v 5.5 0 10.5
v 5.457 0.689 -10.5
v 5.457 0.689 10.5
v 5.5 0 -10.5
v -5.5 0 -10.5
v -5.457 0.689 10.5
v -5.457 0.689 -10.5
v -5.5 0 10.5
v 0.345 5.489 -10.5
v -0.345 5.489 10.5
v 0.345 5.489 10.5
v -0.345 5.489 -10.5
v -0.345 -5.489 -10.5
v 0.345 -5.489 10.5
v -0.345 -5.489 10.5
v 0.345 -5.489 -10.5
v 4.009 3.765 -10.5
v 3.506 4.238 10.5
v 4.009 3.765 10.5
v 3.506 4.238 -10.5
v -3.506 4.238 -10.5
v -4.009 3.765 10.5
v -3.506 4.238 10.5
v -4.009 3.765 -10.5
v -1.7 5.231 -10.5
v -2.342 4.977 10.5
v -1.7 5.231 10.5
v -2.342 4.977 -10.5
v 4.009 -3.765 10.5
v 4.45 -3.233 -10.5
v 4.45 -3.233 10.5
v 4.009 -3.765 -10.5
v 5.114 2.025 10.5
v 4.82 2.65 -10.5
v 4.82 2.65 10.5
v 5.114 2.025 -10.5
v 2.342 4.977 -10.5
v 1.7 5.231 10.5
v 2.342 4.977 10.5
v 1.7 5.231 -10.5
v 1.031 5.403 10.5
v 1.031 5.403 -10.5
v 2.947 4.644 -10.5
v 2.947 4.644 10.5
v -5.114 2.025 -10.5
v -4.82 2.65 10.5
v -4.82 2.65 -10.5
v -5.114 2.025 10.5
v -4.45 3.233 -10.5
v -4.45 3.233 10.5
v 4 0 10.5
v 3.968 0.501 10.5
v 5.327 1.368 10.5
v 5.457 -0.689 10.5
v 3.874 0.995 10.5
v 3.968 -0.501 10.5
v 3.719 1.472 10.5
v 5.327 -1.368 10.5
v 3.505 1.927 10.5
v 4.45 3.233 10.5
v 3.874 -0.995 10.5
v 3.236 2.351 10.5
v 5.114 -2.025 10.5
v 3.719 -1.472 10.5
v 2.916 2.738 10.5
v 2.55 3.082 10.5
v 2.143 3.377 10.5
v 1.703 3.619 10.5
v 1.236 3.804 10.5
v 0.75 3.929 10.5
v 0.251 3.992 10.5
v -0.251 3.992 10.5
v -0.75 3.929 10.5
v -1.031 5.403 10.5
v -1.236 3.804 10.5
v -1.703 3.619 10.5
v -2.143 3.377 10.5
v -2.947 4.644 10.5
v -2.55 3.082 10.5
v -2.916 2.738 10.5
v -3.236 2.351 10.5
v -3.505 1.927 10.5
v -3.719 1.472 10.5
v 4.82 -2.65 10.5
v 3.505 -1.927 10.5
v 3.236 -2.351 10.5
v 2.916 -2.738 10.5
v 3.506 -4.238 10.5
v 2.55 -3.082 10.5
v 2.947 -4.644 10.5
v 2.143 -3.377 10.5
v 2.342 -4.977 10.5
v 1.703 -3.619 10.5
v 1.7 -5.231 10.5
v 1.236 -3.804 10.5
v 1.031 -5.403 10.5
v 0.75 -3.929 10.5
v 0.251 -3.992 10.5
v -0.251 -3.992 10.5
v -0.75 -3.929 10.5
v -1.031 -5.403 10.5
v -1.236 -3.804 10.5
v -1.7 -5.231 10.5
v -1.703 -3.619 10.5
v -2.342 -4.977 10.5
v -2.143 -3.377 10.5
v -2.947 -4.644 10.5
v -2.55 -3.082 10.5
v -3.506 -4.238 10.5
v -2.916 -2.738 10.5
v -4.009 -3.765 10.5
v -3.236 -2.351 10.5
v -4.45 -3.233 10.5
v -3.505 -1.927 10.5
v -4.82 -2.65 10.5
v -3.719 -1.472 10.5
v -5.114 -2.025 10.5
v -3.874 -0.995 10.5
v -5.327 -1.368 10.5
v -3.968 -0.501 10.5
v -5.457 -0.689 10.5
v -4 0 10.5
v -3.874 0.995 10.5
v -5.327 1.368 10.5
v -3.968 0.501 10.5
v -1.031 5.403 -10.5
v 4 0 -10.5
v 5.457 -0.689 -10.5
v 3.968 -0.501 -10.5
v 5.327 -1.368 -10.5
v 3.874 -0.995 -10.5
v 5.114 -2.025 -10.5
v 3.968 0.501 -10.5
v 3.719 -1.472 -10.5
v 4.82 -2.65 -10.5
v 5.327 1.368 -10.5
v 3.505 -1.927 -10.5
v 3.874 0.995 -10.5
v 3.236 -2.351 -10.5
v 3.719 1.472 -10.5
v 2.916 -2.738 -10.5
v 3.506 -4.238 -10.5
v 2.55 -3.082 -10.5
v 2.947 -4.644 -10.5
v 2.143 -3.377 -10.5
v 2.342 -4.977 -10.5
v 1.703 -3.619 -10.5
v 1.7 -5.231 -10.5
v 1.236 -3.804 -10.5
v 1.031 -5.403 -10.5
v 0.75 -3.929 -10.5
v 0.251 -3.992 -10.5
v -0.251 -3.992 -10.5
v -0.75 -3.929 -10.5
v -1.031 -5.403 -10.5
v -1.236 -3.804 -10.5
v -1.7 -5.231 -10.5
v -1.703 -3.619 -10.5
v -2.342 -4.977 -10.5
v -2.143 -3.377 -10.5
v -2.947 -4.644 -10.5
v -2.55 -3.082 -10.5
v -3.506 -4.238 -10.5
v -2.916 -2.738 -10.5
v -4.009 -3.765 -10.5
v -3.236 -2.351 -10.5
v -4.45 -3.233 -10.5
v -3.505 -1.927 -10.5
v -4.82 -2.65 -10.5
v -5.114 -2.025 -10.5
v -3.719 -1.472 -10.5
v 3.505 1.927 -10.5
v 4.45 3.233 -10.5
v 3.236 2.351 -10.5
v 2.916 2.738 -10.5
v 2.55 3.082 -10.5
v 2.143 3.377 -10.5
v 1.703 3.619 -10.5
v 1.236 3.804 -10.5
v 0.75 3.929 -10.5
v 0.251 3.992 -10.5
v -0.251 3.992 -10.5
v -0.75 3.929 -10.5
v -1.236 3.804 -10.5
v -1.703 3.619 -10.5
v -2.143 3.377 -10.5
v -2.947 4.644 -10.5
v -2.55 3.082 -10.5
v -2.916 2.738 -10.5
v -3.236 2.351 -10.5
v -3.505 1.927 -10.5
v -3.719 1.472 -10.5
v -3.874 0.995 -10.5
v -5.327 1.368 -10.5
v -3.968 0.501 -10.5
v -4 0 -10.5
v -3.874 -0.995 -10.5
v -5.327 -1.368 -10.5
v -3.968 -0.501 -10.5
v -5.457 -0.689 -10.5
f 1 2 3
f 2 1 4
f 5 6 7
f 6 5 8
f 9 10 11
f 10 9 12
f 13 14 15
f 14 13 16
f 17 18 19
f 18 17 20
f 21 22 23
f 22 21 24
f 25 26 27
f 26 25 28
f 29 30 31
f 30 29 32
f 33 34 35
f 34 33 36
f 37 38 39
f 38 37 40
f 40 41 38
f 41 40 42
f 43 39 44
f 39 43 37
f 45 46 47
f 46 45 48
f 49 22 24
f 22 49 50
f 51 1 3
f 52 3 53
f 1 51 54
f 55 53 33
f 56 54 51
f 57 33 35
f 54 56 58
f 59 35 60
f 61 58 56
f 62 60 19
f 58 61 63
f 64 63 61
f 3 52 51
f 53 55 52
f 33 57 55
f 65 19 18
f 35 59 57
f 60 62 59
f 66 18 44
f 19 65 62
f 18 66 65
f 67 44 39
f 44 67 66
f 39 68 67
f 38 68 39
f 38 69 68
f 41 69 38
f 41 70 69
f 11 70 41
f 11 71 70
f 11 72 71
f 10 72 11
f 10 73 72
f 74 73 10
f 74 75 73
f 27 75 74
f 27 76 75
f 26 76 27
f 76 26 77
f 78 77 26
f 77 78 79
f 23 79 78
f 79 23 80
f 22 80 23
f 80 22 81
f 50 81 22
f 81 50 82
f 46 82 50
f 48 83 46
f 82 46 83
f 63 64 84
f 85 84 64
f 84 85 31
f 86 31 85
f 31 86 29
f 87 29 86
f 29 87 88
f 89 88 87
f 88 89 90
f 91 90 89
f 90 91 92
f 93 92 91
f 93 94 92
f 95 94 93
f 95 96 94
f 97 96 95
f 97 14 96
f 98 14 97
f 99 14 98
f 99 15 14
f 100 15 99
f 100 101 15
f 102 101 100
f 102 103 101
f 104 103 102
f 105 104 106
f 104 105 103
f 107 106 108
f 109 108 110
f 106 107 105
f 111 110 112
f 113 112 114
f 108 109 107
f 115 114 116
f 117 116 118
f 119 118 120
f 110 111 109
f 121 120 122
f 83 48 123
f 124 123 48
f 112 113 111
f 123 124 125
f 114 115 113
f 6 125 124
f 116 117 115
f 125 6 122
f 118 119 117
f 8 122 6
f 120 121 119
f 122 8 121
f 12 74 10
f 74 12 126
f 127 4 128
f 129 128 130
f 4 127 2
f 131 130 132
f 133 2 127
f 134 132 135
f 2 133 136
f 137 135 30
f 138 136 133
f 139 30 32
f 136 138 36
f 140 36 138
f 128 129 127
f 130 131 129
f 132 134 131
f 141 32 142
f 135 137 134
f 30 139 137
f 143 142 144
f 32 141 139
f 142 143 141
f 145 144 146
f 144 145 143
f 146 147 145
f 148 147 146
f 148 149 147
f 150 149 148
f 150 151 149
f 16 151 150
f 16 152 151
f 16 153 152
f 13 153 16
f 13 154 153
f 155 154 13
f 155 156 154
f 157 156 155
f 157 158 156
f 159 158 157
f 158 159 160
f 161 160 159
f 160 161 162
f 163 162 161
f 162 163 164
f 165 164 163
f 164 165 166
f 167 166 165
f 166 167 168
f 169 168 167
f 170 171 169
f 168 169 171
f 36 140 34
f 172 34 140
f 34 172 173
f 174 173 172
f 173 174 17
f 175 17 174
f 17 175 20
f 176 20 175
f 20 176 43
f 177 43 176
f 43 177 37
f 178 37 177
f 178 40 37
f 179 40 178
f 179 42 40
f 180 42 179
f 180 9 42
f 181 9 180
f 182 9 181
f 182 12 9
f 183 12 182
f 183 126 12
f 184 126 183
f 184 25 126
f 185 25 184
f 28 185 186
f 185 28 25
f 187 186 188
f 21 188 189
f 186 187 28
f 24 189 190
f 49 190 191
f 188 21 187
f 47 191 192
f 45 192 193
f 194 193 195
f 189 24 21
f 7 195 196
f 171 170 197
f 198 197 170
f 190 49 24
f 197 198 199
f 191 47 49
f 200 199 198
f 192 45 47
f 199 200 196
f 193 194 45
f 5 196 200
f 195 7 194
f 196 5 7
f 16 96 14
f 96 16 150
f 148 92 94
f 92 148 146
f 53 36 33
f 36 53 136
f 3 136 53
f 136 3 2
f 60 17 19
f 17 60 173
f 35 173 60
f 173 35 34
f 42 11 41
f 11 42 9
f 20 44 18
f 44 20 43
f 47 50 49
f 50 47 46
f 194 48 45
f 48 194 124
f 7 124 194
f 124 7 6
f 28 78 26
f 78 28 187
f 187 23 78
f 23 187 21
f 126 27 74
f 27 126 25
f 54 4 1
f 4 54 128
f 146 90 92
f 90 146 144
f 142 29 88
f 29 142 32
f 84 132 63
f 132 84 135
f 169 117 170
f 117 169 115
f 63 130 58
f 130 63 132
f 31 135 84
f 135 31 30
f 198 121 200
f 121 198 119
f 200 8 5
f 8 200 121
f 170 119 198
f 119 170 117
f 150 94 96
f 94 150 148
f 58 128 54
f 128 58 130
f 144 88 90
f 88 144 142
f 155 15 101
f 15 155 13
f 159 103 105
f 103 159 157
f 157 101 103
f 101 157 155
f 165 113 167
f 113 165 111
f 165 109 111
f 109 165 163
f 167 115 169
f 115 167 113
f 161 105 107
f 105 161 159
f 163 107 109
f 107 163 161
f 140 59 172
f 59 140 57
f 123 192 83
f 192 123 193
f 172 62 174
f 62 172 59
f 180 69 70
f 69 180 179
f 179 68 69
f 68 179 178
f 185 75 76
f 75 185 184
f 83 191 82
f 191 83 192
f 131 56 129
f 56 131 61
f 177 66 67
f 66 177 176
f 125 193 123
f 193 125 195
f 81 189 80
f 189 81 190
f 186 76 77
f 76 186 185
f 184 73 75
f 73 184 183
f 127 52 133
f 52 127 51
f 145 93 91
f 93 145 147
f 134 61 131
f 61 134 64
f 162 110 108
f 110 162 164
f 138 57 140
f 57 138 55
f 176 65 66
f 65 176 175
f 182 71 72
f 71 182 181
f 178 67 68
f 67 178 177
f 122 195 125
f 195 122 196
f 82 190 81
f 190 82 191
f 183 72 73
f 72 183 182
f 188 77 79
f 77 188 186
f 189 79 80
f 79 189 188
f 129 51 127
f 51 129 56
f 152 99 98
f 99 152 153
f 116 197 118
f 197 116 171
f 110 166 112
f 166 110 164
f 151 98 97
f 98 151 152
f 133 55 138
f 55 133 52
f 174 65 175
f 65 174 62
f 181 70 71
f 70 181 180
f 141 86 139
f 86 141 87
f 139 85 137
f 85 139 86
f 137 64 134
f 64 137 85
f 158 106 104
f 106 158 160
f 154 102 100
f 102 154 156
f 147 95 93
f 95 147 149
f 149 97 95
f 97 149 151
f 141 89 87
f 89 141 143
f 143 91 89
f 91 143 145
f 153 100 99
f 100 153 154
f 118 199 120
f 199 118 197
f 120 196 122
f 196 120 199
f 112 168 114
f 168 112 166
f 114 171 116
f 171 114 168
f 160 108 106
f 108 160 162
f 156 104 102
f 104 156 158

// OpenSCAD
$fn = 50;


difference() {
	union() {
		translate(v = [0, 0, -10.5000000000]) {
			cylinder(h = 21, r = 5.5000000000);
		}
	}
	union() {
		translate(v = [0, 0, -100.0000000000]) {
			cylinder(h = 200, r = 4.0000000000);
		}
	}
}
